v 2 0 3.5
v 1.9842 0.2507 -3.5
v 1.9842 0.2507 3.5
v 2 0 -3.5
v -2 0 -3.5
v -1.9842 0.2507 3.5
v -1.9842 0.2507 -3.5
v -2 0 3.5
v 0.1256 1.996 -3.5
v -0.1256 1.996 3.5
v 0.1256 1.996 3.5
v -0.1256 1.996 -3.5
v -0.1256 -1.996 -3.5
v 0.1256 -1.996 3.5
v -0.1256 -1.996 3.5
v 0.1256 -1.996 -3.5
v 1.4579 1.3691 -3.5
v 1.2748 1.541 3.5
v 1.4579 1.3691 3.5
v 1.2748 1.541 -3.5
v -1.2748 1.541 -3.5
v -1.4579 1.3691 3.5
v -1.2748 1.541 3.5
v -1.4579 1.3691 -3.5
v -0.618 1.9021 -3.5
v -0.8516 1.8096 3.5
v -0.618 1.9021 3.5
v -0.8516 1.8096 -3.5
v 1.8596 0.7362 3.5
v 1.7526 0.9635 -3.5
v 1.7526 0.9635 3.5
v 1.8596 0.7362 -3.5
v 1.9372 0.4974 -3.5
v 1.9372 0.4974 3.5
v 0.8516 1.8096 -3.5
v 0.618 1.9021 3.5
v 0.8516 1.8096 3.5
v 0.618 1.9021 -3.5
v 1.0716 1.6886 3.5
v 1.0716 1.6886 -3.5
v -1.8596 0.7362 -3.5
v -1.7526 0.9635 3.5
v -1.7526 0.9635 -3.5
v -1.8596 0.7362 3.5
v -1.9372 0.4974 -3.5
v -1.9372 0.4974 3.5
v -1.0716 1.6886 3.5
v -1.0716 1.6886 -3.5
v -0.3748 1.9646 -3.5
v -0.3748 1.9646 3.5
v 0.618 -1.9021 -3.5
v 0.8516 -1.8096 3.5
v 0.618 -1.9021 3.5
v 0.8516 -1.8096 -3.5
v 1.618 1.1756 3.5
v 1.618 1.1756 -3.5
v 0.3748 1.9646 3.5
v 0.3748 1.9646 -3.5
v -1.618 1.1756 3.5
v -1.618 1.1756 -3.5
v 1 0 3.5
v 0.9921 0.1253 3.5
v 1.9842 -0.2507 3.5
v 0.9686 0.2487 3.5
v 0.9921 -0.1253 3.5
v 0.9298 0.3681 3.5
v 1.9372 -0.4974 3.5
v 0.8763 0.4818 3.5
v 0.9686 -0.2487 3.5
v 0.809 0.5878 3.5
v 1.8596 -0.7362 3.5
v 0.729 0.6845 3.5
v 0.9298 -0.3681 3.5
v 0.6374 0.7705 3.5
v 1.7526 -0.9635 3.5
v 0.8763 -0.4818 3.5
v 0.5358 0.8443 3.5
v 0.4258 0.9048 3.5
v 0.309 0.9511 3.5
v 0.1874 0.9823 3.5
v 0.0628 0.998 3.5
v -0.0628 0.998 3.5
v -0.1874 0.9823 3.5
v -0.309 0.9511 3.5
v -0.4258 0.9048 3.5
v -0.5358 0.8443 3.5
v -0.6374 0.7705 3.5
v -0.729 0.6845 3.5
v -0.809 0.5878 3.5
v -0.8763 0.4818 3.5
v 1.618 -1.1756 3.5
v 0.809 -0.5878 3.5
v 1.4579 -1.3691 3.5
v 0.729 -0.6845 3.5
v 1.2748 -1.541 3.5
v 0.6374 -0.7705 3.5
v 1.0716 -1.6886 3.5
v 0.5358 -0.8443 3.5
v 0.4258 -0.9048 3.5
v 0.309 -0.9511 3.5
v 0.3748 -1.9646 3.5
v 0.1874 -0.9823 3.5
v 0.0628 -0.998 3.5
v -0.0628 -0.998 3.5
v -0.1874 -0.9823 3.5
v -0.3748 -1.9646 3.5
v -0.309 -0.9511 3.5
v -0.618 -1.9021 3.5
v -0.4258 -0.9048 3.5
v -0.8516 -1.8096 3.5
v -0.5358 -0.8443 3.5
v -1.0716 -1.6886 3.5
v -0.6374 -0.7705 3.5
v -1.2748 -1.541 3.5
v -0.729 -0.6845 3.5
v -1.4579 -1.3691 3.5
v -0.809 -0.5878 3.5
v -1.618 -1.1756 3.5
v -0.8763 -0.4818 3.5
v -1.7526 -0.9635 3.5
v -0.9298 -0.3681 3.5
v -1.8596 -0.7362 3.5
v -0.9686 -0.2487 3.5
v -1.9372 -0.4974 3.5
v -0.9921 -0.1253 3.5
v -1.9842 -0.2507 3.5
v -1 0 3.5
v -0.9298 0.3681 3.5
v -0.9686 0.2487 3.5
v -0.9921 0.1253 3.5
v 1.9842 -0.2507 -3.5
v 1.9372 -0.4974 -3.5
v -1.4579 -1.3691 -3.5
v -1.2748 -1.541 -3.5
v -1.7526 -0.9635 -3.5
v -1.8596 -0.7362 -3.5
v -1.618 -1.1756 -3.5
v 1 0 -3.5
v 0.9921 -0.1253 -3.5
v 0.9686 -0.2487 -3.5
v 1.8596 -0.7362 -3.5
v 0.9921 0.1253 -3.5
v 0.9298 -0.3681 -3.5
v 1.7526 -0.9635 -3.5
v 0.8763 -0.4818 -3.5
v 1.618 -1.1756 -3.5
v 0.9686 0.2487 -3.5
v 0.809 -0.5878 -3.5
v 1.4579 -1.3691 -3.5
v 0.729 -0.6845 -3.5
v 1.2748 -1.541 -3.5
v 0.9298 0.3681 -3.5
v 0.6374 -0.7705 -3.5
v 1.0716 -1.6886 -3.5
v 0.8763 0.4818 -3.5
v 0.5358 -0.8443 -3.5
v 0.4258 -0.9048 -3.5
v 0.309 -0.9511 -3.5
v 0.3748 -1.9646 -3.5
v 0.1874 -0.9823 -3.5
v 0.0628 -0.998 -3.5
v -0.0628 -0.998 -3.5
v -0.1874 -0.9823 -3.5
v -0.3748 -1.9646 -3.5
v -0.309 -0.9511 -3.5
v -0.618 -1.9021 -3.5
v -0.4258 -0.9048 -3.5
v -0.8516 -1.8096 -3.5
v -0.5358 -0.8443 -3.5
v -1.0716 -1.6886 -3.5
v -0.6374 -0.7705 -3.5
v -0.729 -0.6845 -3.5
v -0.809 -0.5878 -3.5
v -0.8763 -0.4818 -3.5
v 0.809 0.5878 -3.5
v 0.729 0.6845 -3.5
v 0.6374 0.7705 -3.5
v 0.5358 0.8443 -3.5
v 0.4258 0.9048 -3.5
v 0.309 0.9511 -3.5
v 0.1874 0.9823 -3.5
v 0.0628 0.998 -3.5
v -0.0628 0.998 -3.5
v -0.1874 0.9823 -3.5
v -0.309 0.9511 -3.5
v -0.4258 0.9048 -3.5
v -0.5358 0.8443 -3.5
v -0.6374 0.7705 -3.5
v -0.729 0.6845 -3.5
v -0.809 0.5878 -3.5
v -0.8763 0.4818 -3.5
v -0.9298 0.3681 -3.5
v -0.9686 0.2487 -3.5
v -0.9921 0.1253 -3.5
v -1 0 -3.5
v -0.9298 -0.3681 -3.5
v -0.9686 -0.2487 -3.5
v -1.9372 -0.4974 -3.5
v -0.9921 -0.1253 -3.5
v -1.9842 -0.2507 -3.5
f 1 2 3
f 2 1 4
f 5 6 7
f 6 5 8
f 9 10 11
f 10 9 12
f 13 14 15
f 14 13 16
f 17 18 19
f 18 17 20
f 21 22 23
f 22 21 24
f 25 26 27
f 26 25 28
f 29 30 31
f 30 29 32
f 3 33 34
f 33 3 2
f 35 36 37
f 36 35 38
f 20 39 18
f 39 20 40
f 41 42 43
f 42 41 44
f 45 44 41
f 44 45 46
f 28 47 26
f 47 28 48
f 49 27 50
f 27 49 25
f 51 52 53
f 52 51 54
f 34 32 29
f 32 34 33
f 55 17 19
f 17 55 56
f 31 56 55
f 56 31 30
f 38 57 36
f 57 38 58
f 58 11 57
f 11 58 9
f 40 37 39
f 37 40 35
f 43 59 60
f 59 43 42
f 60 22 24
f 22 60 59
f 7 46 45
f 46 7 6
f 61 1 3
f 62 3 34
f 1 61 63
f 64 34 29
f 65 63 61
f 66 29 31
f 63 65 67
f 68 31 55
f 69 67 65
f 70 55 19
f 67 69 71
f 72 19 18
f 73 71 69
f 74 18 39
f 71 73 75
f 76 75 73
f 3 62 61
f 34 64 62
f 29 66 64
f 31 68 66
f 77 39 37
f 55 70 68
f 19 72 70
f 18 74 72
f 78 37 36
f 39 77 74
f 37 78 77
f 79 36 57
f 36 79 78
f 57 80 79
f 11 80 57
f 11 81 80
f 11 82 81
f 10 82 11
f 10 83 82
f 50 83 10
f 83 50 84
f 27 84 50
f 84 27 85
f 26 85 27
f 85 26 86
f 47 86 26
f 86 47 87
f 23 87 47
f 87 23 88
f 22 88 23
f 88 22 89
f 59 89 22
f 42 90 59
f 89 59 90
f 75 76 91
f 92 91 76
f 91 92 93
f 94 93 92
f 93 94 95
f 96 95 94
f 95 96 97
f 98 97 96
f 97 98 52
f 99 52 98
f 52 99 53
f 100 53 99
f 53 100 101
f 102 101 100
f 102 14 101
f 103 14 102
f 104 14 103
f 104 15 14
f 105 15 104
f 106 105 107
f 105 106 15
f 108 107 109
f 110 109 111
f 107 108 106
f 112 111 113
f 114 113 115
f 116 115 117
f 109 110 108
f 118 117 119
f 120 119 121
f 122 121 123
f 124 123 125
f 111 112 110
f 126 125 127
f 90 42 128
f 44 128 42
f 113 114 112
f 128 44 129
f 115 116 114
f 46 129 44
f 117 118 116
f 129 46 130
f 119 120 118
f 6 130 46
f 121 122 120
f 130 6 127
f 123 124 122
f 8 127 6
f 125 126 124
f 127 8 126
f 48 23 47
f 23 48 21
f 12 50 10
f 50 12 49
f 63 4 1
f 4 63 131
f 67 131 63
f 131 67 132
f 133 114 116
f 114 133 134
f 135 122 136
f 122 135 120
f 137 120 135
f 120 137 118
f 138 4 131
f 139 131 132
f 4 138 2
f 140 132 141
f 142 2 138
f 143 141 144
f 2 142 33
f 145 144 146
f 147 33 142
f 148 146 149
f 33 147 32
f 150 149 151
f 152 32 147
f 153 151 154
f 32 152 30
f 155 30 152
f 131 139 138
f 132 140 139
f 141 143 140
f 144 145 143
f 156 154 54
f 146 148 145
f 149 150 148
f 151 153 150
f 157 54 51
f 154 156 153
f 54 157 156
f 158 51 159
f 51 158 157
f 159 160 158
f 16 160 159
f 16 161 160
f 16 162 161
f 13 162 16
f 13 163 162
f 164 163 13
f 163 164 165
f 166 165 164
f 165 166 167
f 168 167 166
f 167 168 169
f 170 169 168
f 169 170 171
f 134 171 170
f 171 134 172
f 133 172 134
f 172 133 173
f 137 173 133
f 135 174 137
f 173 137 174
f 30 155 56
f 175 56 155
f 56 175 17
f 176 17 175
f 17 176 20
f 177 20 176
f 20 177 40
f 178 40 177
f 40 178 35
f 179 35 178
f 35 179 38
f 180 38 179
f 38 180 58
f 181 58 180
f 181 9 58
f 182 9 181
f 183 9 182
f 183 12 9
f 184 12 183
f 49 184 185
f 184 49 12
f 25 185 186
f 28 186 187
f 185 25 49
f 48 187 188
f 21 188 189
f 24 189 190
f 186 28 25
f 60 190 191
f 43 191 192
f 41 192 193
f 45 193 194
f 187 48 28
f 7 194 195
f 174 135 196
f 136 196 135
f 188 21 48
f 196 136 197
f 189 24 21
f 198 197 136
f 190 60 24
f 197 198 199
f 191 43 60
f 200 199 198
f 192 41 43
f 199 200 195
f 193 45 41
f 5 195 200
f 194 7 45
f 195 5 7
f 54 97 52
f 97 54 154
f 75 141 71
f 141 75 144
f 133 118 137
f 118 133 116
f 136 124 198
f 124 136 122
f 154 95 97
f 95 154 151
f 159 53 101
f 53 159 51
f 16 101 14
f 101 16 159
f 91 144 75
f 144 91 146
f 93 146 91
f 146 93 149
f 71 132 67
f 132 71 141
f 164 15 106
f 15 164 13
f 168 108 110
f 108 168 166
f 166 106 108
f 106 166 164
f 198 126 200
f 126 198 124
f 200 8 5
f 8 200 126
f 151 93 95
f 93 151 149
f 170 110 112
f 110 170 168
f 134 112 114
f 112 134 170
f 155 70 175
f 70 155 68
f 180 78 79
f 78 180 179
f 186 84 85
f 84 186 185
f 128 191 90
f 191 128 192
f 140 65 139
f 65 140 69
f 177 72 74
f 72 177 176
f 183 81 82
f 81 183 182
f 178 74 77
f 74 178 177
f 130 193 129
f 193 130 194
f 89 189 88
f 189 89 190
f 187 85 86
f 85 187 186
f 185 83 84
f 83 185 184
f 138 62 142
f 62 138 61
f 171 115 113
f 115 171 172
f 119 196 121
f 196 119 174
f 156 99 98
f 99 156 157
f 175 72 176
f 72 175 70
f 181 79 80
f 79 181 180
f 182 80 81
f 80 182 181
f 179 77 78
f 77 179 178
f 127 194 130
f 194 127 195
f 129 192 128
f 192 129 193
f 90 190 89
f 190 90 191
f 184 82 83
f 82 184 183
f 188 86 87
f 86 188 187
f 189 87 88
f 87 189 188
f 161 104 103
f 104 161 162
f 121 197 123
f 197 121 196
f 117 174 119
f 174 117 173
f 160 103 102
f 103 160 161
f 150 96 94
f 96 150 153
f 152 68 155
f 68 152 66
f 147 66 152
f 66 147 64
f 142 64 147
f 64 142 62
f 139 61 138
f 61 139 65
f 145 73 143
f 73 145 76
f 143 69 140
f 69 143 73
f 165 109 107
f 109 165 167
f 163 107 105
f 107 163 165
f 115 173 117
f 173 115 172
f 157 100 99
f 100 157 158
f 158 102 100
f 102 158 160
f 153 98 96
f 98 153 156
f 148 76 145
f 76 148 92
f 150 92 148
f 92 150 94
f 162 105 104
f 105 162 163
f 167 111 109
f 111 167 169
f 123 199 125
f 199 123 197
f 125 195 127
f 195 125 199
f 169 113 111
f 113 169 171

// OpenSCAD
$fn = 50;


difference() {
	union() {
		translate(v = [0, 0, -3.5000000000]) {
			cylinder(h = 7, r = 2.0000000000);
		}
	}
	union() {
		translate(v = [0, 0, -100.0000000000]) {
			cylinder(h = 200, r = 1.0000000000);
		}
	}
}
